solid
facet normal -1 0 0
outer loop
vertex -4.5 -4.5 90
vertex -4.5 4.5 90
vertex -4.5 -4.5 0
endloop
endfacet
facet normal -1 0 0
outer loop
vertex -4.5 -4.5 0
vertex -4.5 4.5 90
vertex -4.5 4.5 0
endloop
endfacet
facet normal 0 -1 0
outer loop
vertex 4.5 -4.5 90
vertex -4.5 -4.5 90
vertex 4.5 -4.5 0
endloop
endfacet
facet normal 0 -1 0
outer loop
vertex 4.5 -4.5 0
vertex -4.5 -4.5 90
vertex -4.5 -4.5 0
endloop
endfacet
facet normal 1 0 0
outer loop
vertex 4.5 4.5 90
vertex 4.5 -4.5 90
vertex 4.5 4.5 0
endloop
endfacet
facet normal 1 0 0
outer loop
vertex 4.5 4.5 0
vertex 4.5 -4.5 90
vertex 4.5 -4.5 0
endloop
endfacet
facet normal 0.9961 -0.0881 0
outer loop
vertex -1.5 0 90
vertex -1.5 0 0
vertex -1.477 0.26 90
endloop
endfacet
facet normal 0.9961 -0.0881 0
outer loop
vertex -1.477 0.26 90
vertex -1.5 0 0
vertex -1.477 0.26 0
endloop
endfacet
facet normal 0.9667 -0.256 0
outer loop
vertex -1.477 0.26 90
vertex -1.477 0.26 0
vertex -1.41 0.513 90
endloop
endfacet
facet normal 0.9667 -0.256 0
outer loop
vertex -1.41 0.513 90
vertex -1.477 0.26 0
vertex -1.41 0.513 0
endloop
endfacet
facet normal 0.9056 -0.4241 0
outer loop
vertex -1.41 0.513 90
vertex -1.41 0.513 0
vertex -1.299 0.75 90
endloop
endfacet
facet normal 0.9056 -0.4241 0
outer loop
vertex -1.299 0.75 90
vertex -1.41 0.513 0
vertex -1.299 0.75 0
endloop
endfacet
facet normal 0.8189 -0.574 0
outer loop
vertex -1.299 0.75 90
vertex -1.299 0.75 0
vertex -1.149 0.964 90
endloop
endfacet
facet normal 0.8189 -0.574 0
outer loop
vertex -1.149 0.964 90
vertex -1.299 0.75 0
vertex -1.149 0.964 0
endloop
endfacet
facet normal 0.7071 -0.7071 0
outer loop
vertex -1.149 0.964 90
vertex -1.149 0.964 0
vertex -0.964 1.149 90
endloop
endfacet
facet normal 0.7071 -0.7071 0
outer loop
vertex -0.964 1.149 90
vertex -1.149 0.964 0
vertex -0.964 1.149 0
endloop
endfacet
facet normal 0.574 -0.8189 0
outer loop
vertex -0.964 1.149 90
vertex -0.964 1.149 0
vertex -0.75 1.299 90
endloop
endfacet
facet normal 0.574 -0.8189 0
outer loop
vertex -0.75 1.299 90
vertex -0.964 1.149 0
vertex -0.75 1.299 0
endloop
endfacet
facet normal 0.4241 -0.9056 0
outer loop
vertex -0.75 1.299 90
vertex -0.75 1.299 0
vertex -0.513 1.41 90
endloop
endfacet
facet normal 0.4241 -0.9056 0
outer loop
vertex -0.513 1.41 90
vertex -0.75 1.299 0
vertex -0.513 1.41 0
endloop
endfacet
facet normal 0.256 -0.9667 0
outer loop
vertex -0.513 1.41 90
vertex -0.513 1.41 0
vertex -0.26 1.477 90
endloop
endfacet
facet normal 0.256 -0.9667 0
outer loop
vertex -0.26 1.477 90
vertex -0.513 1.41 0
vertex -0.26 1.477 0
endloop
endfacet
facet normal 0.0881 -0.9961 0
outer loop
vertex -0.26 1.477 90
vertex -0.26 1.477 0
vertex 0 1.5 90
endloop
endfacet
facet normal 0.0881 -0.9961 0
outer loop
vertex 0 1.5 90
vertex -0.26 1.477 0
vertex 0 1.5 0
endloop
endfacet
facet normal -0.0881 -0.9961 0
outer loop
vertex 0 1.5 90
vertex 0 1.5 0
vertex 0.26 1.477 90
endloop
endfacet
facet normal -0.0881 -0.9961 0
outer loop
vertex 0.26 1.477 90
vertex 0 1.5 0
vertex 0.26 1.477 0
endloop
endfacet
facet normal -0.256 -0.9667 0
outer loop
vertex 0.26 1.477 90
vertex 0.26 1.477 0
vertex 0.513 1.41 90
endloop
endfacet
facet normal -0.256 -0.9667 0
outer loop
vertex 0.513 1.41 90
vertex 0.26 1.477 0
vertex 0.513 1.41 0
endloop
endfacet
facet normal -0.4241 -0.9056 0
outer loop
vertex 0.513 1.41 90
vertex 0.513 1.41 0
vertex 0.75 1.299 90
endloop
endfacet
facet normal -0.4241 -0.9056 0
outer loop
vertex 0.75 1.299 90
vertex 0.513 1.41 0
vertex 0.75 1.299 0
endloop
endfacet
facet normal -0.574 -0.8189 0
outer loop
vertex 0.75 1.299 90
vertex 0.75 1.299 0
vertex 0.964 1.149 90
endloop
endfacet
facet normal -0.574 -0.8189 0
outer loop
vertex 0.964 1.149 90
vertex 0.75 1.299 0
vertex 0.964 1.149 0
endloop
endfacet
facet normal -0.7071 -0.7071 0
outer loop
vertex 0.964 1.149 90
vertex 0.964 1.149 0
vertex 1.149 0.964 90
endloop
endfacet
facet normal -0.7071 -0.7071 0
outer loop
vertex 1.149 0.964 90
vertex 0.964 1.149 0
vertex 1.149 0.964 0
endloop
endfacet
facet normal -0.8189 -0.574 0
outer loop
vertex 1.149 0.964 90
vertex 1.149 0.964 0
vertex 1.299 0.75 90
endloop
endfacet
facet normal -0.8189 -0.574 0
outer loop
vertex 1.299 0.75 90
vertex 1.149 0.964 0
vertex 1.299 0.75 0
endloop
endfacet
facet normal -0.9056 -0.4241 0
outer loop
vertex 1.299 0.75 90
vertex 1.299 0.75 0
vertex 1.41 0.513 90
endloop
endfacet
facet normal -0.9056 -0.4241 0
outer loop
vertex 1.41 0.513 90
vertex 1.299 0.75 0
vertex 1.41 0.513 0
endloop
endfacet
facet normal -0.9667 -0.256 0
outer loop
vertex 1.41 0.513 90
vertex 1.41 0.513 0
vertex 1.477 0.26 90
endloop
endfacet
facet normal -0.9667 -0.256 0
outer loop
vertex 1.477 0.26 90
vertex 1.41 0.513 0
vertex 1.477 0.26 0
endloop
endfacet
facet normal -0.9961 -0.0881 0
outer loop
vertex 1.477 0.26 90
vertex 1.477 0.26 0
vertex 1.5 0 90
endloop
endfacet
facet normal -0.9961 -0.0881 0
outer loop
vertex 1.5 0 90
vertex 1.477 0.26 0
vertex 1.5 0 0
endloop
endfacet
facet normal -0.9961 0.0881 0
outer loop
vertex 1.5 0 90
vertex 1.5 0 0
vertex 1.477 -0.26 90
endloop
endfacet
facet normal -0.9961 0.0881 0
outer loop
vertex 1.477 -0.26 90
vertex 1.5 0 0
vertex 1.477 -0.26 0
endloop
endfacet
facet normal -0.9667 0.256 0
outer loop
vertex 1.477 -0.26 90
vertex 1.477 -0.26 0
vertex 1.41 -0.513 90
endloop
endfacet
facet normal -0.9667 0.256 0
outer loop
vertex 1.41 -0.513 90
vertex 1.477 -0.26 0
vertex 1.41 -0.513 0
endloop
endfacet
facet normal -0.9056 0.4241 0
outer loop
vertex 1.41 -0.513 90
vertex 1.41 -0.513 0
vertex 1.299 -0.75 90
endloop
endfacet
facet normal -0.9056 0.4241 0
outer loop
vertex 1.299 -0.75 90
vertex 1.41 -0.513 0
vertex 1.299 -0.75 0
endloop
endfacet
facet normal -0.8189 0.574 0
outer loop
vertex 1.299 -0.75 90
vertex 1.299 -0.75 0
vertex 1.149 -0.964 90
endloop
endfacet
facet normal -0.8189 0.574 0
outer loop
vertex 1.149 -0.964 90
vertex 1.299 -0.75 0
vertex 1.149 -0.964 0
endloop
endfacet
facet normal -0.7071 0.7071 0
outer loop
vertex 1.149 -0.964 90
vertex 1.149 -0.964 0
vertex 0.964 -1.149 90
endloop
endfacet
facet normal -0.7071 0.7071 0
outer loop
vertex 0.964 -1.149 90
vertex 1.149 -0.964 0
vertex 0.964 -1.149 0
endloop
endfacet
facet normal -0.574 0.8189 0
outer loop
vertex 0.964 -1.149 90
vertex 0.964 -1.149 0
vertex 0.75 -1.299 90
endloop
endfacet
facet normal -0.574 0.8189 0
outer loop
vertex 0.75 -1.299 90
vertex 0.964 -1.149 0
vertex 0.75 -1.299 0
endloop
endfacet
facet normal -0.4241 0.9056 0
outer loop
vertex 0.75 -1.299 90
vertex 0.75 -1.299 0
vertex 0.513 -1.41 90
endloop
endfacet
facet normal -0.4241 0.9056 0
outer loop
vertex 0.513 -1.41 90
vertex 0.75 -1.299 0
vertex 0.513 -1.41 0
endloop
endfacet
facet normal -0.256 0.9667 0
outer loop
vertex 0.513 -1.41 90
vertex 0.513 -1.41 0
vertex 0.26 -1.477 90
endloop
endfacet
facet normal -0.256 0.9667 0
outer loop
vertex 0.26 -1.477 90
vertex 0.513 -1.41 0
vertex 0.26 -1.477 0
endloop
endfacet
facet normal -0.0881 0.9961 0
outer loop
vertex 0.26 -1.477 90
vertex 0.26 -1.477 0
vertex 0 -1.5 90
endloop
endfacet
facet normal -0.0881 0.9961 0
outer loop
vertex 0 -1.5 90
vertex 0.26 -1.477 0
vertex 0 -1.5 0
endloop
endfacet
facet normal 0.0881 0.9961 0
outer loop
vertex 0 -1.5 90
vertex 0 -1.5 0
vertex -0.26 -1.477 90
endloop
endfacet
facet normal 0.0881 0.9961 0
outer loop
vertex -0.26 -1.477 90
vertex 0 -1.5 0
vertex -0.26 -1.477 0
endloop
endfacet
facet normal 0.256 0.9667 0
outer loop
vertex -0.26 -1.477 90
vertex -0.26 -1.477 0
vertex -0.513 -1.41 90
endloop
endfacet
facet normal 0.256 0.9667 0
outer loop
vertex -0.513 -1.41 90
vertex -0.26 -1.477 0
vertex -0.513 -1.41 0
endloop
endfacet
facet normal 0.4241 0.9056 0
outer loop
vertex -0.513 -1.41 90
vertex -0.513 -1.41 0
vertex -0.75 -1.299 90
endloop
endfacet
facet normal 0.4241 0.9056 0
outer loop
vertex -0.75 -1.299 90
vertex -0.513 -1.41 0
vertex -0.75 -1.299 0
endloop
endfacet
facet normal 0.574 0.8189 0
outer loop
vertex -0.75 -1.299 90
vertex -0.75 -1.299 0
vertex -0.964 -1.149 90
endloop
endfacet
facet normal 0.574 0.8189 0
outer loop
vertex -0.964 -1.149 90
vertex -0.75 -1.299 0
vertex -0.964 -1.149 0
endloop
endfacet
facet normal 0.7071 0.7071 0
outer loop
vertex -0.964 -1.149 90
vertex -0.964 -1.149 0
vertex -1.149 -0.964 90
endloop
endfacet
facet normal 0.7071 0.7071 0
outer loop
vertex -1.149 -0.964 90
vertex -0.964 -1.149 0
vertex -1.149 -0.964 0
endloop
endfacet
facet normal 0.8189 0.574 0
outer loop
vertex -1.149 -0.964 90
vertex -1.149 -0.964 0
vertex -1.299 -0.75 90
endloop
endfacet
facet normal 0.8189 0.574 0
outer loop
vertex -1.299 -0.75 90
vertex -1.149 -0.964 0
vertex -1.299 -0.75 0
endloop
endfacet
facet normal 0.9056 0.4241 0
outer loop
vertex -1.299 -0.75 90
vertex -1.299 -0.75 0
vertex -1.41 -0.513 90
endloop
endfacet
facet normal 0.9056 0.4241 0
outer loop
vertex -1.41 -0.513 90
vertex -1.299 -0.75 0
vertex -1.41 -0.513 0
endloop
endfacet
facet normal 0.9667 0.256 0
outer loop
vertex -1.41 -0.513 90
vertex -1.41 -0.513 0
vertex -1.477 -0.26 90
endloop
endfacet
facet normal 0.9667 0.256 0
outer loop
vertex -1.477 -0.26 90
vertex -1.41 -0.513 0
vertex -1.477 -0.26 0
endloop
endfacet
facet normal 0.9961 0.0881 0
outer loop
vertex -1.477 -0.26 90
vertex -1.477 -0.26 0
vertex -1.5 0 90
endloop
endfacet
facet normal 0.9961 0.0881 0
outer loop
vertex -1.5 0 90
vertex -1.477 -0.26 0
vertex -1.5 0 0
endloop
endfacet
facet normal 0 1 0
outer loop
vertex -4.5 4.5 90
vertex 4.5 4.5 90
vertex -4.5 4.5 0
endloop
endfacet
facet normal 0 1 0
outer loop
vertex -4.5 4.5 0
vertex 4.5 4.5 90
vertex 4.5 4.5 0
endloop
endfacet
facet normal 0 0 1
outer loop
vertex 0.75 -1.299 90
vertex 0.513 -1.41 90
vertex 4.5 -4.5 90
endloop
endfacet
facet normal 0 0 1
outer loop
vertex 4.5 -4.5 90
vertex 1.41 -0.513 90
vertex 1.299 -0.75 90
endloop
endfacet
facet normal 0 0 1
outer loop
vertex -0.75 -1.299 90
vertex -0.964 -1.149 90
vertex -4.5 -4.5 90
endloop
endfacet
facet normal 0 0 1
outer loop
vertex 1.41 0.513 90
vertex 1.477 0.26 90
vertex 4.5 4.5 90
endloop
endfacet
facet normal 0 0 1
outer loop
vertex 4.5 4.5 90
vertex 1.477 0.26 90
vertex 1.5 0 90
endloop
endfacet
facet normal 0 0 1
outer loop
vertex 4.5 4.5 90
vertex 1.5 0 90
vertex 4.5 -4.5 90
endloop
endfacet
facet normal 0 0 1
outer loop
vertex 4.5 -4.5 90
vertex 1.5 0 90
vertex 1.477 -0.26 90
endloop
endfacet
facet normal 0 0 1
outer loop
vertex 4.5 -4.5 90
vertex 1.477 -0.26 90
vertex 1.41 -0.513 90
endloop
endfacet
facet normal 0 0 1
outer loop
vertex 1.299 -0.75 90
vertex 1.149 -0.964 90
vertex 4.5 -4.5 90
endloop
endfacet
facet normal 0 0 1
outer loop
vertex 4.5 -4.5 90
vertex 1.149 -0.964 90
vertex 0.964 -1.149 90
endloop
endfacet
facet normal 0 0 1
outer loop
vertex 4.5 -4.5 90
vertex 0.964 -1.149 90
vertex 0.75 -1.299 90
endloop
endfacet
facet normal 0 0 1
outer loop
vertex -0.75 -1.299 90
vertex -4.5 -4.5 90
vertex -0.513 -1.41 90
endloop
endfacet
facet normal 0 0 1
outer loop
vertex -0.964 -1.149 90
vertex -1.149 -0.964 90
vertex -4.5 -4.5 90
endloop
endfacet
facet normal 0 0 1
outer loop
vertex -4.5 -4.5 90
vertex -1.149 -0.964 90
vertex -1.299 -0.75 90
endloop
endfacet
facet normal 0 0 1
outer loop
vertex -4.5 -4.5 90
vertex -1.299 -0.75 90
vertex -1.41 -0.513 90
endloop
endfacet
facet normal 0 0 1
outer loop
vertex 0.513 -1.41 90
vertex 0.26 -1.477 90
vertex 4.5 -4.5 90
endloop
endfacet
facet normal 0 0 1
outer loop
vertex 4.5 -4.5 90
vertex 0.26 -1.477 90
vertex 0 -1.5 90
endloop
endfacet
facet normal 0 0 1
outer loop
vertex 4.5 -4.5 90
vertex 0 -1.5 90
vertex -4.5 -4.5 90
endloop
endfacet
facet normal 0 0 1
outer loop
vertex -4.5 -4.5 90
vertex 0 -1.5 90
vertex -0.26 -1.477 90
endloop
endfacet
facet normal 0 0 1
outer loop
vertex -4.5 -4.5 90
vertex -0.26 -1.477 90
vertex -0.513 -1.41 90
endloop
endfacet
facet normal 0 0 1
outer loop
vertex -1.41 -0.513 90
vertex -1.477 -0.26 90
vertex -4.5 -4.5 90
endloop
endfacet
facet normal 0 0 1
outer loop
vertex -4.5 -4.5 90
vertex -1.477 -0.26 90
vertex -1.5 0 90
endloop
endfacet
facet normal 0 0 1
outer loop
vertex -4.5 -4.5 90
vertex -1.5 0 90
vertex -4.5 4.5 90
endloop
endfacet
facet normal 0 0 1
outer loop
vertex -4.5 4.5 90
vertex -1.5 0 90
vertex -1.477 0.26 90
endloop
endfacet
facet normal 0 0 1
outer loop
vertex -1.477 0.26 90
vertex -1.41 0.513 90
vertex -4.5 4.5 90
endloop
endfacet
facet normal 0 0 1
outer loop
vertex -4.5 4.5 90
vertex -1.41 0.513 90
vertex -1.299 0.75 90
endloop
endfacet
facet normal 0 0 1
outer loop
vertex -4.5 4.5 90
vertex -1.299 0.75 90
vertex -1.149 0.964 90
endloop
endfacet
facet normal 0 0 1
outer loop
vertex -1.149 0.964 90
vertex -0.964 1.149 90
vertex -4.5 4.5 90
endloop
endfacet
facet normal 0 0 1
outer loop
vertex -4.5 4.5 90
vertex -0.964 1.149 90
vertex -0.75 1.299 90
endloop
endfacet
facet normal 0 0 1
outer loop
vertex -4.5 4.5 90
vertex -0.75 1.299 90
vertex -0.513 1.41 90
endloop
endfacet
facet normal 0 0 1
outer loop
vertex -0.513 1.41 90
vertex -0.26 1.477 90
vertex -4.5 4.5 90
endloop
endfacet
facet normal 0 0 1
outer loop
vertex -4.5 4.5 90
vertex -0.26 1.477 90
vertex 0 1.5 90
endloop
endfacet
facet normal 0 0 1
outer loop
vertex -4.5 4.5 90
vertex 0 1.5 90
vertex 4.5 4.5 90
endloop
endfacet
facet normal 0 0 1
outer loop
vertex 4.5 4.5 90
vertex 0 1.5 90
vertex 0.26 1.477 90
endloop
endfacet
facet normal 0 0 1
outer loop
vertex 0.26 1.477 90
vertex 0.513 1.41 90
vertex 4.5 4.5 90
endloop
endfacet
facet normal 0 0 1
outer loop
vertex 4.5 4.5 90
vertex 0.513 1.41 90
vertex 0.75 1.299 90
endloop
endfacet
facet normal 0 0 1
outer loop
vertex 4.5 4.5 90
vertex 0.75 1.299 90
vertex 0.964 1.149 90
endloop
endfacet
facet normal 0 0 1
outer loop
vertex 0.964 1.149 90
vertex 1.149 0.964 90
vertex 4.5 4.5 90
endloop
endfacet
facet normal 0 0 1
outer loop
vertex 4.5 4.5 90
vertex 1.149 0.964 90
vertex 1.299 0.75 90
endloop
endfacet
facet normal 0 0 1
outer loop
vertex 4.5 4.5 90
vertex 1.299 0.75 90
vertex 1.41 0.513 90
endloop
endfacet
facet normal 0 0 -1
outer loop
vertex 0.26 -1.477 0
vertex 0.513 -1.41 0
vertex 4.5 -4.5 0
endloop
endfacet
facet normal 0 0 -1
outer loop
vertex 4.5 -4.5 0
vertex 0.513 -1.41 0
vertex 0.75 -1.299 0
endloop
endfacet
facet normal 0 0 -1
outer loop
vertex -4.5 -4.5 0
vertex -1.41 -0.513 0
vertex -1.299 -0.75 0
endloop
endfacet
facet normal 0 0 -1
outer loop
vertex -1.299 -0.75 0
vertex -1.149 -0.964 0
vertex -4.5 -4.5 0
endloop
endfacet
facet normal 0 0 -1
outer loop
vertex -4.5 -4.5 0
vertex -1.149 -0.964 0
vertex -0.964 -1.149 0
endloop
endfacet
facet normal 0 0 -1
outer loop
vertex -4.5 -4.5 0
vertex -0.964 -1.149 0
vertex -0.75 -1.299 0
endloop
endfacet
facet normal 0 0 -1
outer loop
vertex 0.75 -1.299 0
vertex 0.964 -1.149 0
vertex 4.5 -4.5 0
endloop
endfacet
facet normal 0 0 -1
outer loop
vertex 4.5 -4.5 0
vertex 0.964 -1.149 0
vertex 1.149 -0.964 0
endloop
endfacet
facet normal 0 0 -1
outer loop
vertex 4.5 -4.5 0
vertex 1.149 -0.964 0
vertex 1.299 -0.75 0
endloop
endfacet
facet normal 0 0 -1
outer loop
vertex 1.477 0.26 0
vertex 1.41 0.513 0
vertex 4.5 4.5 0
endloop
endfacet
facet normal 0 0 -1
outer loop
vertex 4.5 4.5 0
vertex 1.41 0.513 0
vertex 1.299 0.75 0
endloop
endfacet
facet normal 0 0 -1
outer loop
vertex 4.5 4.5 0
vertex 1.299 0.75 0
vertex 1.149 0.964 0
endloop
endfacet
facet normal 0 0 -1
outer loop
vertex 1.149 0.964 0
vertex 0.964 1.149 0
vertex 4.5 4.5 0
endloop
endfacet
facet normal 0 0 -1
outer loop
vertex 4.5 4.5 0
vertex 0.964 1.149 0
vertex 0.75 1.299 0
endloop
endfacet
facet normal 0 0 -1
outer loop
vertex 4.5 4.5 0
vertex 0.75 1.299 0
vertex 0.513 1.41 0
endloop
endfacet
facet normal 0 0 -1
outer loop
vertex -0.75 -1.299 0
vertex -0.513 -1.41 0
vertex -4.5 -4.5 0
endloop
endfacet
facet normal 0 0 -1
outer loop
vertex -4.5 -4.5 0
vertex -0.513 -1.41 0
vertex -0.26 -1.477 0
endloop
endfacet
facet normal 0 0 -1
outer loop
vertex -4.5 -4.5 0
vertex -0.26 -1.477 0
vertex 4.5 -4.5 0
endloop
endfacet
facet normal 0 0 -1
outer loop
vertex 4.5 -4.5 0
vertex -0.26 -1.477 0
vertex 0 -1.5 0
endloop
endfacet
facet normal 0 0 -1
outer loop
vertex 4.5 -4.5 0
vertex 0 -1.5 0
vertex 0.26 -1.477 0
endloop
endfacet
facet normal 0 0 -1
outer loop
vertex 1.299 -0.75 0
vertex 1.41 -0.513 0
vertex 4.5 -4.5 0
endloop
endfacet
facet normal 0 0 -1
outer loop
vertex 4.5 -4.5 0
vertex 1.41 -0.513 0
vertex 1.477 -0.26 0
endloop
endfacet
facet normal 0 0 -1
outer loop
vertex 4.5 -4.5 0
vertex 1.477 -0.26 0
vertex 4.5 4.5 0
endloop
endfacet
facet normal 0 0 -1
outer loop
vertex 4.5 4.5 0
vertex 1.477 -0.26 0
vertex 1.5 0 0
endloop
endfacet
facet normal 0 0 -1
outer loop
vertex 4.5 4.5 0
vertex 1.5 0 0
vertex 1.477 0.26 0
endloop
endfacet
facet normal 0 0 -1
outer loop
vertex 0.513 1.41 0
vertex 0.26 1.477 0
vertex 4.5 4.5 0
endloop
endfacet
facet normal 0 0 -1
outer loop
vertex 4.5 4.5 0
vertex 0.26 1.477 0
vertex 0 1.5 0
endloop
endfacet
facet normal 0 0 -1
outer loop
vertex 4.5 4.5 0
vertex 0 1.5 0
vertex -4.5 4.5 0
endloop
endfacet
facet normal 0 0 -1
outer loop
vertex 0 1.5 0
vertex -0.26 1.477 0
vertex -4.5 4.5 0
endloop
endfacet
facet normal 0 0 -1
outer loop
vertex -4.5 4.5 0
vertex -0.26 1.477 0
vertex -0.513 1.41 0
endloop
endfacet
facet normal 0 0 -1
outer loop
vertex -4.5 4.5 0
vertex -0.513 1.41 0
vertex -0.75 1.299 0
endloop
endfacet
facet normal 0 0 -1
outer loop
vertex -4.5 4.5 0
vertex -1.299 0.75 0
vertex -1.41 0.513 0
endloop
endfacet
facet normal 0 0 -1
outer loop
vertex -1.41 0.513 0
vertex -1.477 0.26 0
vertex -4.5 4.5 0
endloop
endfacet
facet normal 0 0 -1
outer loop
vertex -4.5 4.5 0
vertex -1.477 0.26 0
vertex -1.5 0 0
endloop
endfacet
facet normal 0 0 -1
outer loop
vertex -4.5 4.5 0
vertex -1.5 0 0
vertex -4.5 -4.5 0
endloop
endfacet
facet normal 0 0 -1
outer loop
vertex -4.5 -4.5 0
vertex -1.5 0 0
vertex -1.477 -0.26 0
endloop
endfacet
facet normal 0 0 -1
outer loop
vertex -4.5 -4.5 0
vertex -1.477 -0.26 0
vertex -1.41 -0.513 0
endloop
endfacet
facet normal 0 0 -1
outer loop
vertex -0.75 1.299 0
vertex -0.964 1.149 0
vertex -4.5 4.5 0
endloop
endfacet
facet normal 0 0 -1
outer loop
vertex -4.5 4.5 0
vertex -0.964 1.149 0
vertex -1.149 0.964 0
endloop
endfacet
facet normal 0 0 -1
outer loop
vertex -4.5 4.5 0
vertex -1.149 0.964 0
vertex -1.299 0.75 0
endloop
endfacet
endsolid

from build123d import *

# Parameters (mm, degrees)
SKETCH1_W           = 9
SKETCH1_H           = 9
SKETCH1_W_2         = 3
SKETCH1_H_2         = 3
BOSS_EXTRUDE1_DEPTH = 90


with BuildPart() as part:
    # Sketch1 → Boss-Extrude1 (new body)
    # profile 1 of 5: a face of its own
    with BuildSketch(Plane.XY):
        Rectangle(SKETCH1_W, SKETCH1_H)
        Rectangle(SKETCH1_W_2, SKETCH1_H_2, mode=Mode.SUBTRACT)
    # profile 2 of 5: a face of its own
    with BuildSketch(Plane.XY):
        with BuildLine():
            Line((-1.5, 1.5), (-1.5, 0))
            ThreePointArc((-1.5, 0), (-1.060660172, 1.060660172), (0, 1.5))
            Line((0, 1.5), (-1.5, 1.5))
        make_face()
    # profile 3 of 5: a face of its own
    with BuildSketch(Plane.XY):
        with BuildLine():
            ThreePointArc((0, 1.5), (1.060660172, 1.060660172), (1.5, 0))
            Line((1.5, 0), (1.5, 1.5))
            Line((1.5, 1.5), (0, 1.5))
        make_face()
    # profile 4 of 5: a face of its own
    with BuildSketch(Plane.XY):
        with BuildLine():
            ThreePointArc((1.5, 0), (1.060660172, -1.060660172), (0, -1.5))
            Line((0, -1.5), (1.5, -1.5))
            Line((1.5, -1.5), (1.5, 0))
        make_face()
    # profile 5 of 5: a face of its own
    with BuildSketch(Plane.XY):
        with BuildLine():
            Line((-1.5, 0), (-1.5, -1.5))
            Line((-1.5, -1.5), (0, -1.5))
            ThreePointArc((0, -1.5), (-1.060660172, -1.060660172), (-1.5, 0))
        make_face()
    extrude(amount=BOSS_EXTRUDE1_DEPTH)


solid = part.part
